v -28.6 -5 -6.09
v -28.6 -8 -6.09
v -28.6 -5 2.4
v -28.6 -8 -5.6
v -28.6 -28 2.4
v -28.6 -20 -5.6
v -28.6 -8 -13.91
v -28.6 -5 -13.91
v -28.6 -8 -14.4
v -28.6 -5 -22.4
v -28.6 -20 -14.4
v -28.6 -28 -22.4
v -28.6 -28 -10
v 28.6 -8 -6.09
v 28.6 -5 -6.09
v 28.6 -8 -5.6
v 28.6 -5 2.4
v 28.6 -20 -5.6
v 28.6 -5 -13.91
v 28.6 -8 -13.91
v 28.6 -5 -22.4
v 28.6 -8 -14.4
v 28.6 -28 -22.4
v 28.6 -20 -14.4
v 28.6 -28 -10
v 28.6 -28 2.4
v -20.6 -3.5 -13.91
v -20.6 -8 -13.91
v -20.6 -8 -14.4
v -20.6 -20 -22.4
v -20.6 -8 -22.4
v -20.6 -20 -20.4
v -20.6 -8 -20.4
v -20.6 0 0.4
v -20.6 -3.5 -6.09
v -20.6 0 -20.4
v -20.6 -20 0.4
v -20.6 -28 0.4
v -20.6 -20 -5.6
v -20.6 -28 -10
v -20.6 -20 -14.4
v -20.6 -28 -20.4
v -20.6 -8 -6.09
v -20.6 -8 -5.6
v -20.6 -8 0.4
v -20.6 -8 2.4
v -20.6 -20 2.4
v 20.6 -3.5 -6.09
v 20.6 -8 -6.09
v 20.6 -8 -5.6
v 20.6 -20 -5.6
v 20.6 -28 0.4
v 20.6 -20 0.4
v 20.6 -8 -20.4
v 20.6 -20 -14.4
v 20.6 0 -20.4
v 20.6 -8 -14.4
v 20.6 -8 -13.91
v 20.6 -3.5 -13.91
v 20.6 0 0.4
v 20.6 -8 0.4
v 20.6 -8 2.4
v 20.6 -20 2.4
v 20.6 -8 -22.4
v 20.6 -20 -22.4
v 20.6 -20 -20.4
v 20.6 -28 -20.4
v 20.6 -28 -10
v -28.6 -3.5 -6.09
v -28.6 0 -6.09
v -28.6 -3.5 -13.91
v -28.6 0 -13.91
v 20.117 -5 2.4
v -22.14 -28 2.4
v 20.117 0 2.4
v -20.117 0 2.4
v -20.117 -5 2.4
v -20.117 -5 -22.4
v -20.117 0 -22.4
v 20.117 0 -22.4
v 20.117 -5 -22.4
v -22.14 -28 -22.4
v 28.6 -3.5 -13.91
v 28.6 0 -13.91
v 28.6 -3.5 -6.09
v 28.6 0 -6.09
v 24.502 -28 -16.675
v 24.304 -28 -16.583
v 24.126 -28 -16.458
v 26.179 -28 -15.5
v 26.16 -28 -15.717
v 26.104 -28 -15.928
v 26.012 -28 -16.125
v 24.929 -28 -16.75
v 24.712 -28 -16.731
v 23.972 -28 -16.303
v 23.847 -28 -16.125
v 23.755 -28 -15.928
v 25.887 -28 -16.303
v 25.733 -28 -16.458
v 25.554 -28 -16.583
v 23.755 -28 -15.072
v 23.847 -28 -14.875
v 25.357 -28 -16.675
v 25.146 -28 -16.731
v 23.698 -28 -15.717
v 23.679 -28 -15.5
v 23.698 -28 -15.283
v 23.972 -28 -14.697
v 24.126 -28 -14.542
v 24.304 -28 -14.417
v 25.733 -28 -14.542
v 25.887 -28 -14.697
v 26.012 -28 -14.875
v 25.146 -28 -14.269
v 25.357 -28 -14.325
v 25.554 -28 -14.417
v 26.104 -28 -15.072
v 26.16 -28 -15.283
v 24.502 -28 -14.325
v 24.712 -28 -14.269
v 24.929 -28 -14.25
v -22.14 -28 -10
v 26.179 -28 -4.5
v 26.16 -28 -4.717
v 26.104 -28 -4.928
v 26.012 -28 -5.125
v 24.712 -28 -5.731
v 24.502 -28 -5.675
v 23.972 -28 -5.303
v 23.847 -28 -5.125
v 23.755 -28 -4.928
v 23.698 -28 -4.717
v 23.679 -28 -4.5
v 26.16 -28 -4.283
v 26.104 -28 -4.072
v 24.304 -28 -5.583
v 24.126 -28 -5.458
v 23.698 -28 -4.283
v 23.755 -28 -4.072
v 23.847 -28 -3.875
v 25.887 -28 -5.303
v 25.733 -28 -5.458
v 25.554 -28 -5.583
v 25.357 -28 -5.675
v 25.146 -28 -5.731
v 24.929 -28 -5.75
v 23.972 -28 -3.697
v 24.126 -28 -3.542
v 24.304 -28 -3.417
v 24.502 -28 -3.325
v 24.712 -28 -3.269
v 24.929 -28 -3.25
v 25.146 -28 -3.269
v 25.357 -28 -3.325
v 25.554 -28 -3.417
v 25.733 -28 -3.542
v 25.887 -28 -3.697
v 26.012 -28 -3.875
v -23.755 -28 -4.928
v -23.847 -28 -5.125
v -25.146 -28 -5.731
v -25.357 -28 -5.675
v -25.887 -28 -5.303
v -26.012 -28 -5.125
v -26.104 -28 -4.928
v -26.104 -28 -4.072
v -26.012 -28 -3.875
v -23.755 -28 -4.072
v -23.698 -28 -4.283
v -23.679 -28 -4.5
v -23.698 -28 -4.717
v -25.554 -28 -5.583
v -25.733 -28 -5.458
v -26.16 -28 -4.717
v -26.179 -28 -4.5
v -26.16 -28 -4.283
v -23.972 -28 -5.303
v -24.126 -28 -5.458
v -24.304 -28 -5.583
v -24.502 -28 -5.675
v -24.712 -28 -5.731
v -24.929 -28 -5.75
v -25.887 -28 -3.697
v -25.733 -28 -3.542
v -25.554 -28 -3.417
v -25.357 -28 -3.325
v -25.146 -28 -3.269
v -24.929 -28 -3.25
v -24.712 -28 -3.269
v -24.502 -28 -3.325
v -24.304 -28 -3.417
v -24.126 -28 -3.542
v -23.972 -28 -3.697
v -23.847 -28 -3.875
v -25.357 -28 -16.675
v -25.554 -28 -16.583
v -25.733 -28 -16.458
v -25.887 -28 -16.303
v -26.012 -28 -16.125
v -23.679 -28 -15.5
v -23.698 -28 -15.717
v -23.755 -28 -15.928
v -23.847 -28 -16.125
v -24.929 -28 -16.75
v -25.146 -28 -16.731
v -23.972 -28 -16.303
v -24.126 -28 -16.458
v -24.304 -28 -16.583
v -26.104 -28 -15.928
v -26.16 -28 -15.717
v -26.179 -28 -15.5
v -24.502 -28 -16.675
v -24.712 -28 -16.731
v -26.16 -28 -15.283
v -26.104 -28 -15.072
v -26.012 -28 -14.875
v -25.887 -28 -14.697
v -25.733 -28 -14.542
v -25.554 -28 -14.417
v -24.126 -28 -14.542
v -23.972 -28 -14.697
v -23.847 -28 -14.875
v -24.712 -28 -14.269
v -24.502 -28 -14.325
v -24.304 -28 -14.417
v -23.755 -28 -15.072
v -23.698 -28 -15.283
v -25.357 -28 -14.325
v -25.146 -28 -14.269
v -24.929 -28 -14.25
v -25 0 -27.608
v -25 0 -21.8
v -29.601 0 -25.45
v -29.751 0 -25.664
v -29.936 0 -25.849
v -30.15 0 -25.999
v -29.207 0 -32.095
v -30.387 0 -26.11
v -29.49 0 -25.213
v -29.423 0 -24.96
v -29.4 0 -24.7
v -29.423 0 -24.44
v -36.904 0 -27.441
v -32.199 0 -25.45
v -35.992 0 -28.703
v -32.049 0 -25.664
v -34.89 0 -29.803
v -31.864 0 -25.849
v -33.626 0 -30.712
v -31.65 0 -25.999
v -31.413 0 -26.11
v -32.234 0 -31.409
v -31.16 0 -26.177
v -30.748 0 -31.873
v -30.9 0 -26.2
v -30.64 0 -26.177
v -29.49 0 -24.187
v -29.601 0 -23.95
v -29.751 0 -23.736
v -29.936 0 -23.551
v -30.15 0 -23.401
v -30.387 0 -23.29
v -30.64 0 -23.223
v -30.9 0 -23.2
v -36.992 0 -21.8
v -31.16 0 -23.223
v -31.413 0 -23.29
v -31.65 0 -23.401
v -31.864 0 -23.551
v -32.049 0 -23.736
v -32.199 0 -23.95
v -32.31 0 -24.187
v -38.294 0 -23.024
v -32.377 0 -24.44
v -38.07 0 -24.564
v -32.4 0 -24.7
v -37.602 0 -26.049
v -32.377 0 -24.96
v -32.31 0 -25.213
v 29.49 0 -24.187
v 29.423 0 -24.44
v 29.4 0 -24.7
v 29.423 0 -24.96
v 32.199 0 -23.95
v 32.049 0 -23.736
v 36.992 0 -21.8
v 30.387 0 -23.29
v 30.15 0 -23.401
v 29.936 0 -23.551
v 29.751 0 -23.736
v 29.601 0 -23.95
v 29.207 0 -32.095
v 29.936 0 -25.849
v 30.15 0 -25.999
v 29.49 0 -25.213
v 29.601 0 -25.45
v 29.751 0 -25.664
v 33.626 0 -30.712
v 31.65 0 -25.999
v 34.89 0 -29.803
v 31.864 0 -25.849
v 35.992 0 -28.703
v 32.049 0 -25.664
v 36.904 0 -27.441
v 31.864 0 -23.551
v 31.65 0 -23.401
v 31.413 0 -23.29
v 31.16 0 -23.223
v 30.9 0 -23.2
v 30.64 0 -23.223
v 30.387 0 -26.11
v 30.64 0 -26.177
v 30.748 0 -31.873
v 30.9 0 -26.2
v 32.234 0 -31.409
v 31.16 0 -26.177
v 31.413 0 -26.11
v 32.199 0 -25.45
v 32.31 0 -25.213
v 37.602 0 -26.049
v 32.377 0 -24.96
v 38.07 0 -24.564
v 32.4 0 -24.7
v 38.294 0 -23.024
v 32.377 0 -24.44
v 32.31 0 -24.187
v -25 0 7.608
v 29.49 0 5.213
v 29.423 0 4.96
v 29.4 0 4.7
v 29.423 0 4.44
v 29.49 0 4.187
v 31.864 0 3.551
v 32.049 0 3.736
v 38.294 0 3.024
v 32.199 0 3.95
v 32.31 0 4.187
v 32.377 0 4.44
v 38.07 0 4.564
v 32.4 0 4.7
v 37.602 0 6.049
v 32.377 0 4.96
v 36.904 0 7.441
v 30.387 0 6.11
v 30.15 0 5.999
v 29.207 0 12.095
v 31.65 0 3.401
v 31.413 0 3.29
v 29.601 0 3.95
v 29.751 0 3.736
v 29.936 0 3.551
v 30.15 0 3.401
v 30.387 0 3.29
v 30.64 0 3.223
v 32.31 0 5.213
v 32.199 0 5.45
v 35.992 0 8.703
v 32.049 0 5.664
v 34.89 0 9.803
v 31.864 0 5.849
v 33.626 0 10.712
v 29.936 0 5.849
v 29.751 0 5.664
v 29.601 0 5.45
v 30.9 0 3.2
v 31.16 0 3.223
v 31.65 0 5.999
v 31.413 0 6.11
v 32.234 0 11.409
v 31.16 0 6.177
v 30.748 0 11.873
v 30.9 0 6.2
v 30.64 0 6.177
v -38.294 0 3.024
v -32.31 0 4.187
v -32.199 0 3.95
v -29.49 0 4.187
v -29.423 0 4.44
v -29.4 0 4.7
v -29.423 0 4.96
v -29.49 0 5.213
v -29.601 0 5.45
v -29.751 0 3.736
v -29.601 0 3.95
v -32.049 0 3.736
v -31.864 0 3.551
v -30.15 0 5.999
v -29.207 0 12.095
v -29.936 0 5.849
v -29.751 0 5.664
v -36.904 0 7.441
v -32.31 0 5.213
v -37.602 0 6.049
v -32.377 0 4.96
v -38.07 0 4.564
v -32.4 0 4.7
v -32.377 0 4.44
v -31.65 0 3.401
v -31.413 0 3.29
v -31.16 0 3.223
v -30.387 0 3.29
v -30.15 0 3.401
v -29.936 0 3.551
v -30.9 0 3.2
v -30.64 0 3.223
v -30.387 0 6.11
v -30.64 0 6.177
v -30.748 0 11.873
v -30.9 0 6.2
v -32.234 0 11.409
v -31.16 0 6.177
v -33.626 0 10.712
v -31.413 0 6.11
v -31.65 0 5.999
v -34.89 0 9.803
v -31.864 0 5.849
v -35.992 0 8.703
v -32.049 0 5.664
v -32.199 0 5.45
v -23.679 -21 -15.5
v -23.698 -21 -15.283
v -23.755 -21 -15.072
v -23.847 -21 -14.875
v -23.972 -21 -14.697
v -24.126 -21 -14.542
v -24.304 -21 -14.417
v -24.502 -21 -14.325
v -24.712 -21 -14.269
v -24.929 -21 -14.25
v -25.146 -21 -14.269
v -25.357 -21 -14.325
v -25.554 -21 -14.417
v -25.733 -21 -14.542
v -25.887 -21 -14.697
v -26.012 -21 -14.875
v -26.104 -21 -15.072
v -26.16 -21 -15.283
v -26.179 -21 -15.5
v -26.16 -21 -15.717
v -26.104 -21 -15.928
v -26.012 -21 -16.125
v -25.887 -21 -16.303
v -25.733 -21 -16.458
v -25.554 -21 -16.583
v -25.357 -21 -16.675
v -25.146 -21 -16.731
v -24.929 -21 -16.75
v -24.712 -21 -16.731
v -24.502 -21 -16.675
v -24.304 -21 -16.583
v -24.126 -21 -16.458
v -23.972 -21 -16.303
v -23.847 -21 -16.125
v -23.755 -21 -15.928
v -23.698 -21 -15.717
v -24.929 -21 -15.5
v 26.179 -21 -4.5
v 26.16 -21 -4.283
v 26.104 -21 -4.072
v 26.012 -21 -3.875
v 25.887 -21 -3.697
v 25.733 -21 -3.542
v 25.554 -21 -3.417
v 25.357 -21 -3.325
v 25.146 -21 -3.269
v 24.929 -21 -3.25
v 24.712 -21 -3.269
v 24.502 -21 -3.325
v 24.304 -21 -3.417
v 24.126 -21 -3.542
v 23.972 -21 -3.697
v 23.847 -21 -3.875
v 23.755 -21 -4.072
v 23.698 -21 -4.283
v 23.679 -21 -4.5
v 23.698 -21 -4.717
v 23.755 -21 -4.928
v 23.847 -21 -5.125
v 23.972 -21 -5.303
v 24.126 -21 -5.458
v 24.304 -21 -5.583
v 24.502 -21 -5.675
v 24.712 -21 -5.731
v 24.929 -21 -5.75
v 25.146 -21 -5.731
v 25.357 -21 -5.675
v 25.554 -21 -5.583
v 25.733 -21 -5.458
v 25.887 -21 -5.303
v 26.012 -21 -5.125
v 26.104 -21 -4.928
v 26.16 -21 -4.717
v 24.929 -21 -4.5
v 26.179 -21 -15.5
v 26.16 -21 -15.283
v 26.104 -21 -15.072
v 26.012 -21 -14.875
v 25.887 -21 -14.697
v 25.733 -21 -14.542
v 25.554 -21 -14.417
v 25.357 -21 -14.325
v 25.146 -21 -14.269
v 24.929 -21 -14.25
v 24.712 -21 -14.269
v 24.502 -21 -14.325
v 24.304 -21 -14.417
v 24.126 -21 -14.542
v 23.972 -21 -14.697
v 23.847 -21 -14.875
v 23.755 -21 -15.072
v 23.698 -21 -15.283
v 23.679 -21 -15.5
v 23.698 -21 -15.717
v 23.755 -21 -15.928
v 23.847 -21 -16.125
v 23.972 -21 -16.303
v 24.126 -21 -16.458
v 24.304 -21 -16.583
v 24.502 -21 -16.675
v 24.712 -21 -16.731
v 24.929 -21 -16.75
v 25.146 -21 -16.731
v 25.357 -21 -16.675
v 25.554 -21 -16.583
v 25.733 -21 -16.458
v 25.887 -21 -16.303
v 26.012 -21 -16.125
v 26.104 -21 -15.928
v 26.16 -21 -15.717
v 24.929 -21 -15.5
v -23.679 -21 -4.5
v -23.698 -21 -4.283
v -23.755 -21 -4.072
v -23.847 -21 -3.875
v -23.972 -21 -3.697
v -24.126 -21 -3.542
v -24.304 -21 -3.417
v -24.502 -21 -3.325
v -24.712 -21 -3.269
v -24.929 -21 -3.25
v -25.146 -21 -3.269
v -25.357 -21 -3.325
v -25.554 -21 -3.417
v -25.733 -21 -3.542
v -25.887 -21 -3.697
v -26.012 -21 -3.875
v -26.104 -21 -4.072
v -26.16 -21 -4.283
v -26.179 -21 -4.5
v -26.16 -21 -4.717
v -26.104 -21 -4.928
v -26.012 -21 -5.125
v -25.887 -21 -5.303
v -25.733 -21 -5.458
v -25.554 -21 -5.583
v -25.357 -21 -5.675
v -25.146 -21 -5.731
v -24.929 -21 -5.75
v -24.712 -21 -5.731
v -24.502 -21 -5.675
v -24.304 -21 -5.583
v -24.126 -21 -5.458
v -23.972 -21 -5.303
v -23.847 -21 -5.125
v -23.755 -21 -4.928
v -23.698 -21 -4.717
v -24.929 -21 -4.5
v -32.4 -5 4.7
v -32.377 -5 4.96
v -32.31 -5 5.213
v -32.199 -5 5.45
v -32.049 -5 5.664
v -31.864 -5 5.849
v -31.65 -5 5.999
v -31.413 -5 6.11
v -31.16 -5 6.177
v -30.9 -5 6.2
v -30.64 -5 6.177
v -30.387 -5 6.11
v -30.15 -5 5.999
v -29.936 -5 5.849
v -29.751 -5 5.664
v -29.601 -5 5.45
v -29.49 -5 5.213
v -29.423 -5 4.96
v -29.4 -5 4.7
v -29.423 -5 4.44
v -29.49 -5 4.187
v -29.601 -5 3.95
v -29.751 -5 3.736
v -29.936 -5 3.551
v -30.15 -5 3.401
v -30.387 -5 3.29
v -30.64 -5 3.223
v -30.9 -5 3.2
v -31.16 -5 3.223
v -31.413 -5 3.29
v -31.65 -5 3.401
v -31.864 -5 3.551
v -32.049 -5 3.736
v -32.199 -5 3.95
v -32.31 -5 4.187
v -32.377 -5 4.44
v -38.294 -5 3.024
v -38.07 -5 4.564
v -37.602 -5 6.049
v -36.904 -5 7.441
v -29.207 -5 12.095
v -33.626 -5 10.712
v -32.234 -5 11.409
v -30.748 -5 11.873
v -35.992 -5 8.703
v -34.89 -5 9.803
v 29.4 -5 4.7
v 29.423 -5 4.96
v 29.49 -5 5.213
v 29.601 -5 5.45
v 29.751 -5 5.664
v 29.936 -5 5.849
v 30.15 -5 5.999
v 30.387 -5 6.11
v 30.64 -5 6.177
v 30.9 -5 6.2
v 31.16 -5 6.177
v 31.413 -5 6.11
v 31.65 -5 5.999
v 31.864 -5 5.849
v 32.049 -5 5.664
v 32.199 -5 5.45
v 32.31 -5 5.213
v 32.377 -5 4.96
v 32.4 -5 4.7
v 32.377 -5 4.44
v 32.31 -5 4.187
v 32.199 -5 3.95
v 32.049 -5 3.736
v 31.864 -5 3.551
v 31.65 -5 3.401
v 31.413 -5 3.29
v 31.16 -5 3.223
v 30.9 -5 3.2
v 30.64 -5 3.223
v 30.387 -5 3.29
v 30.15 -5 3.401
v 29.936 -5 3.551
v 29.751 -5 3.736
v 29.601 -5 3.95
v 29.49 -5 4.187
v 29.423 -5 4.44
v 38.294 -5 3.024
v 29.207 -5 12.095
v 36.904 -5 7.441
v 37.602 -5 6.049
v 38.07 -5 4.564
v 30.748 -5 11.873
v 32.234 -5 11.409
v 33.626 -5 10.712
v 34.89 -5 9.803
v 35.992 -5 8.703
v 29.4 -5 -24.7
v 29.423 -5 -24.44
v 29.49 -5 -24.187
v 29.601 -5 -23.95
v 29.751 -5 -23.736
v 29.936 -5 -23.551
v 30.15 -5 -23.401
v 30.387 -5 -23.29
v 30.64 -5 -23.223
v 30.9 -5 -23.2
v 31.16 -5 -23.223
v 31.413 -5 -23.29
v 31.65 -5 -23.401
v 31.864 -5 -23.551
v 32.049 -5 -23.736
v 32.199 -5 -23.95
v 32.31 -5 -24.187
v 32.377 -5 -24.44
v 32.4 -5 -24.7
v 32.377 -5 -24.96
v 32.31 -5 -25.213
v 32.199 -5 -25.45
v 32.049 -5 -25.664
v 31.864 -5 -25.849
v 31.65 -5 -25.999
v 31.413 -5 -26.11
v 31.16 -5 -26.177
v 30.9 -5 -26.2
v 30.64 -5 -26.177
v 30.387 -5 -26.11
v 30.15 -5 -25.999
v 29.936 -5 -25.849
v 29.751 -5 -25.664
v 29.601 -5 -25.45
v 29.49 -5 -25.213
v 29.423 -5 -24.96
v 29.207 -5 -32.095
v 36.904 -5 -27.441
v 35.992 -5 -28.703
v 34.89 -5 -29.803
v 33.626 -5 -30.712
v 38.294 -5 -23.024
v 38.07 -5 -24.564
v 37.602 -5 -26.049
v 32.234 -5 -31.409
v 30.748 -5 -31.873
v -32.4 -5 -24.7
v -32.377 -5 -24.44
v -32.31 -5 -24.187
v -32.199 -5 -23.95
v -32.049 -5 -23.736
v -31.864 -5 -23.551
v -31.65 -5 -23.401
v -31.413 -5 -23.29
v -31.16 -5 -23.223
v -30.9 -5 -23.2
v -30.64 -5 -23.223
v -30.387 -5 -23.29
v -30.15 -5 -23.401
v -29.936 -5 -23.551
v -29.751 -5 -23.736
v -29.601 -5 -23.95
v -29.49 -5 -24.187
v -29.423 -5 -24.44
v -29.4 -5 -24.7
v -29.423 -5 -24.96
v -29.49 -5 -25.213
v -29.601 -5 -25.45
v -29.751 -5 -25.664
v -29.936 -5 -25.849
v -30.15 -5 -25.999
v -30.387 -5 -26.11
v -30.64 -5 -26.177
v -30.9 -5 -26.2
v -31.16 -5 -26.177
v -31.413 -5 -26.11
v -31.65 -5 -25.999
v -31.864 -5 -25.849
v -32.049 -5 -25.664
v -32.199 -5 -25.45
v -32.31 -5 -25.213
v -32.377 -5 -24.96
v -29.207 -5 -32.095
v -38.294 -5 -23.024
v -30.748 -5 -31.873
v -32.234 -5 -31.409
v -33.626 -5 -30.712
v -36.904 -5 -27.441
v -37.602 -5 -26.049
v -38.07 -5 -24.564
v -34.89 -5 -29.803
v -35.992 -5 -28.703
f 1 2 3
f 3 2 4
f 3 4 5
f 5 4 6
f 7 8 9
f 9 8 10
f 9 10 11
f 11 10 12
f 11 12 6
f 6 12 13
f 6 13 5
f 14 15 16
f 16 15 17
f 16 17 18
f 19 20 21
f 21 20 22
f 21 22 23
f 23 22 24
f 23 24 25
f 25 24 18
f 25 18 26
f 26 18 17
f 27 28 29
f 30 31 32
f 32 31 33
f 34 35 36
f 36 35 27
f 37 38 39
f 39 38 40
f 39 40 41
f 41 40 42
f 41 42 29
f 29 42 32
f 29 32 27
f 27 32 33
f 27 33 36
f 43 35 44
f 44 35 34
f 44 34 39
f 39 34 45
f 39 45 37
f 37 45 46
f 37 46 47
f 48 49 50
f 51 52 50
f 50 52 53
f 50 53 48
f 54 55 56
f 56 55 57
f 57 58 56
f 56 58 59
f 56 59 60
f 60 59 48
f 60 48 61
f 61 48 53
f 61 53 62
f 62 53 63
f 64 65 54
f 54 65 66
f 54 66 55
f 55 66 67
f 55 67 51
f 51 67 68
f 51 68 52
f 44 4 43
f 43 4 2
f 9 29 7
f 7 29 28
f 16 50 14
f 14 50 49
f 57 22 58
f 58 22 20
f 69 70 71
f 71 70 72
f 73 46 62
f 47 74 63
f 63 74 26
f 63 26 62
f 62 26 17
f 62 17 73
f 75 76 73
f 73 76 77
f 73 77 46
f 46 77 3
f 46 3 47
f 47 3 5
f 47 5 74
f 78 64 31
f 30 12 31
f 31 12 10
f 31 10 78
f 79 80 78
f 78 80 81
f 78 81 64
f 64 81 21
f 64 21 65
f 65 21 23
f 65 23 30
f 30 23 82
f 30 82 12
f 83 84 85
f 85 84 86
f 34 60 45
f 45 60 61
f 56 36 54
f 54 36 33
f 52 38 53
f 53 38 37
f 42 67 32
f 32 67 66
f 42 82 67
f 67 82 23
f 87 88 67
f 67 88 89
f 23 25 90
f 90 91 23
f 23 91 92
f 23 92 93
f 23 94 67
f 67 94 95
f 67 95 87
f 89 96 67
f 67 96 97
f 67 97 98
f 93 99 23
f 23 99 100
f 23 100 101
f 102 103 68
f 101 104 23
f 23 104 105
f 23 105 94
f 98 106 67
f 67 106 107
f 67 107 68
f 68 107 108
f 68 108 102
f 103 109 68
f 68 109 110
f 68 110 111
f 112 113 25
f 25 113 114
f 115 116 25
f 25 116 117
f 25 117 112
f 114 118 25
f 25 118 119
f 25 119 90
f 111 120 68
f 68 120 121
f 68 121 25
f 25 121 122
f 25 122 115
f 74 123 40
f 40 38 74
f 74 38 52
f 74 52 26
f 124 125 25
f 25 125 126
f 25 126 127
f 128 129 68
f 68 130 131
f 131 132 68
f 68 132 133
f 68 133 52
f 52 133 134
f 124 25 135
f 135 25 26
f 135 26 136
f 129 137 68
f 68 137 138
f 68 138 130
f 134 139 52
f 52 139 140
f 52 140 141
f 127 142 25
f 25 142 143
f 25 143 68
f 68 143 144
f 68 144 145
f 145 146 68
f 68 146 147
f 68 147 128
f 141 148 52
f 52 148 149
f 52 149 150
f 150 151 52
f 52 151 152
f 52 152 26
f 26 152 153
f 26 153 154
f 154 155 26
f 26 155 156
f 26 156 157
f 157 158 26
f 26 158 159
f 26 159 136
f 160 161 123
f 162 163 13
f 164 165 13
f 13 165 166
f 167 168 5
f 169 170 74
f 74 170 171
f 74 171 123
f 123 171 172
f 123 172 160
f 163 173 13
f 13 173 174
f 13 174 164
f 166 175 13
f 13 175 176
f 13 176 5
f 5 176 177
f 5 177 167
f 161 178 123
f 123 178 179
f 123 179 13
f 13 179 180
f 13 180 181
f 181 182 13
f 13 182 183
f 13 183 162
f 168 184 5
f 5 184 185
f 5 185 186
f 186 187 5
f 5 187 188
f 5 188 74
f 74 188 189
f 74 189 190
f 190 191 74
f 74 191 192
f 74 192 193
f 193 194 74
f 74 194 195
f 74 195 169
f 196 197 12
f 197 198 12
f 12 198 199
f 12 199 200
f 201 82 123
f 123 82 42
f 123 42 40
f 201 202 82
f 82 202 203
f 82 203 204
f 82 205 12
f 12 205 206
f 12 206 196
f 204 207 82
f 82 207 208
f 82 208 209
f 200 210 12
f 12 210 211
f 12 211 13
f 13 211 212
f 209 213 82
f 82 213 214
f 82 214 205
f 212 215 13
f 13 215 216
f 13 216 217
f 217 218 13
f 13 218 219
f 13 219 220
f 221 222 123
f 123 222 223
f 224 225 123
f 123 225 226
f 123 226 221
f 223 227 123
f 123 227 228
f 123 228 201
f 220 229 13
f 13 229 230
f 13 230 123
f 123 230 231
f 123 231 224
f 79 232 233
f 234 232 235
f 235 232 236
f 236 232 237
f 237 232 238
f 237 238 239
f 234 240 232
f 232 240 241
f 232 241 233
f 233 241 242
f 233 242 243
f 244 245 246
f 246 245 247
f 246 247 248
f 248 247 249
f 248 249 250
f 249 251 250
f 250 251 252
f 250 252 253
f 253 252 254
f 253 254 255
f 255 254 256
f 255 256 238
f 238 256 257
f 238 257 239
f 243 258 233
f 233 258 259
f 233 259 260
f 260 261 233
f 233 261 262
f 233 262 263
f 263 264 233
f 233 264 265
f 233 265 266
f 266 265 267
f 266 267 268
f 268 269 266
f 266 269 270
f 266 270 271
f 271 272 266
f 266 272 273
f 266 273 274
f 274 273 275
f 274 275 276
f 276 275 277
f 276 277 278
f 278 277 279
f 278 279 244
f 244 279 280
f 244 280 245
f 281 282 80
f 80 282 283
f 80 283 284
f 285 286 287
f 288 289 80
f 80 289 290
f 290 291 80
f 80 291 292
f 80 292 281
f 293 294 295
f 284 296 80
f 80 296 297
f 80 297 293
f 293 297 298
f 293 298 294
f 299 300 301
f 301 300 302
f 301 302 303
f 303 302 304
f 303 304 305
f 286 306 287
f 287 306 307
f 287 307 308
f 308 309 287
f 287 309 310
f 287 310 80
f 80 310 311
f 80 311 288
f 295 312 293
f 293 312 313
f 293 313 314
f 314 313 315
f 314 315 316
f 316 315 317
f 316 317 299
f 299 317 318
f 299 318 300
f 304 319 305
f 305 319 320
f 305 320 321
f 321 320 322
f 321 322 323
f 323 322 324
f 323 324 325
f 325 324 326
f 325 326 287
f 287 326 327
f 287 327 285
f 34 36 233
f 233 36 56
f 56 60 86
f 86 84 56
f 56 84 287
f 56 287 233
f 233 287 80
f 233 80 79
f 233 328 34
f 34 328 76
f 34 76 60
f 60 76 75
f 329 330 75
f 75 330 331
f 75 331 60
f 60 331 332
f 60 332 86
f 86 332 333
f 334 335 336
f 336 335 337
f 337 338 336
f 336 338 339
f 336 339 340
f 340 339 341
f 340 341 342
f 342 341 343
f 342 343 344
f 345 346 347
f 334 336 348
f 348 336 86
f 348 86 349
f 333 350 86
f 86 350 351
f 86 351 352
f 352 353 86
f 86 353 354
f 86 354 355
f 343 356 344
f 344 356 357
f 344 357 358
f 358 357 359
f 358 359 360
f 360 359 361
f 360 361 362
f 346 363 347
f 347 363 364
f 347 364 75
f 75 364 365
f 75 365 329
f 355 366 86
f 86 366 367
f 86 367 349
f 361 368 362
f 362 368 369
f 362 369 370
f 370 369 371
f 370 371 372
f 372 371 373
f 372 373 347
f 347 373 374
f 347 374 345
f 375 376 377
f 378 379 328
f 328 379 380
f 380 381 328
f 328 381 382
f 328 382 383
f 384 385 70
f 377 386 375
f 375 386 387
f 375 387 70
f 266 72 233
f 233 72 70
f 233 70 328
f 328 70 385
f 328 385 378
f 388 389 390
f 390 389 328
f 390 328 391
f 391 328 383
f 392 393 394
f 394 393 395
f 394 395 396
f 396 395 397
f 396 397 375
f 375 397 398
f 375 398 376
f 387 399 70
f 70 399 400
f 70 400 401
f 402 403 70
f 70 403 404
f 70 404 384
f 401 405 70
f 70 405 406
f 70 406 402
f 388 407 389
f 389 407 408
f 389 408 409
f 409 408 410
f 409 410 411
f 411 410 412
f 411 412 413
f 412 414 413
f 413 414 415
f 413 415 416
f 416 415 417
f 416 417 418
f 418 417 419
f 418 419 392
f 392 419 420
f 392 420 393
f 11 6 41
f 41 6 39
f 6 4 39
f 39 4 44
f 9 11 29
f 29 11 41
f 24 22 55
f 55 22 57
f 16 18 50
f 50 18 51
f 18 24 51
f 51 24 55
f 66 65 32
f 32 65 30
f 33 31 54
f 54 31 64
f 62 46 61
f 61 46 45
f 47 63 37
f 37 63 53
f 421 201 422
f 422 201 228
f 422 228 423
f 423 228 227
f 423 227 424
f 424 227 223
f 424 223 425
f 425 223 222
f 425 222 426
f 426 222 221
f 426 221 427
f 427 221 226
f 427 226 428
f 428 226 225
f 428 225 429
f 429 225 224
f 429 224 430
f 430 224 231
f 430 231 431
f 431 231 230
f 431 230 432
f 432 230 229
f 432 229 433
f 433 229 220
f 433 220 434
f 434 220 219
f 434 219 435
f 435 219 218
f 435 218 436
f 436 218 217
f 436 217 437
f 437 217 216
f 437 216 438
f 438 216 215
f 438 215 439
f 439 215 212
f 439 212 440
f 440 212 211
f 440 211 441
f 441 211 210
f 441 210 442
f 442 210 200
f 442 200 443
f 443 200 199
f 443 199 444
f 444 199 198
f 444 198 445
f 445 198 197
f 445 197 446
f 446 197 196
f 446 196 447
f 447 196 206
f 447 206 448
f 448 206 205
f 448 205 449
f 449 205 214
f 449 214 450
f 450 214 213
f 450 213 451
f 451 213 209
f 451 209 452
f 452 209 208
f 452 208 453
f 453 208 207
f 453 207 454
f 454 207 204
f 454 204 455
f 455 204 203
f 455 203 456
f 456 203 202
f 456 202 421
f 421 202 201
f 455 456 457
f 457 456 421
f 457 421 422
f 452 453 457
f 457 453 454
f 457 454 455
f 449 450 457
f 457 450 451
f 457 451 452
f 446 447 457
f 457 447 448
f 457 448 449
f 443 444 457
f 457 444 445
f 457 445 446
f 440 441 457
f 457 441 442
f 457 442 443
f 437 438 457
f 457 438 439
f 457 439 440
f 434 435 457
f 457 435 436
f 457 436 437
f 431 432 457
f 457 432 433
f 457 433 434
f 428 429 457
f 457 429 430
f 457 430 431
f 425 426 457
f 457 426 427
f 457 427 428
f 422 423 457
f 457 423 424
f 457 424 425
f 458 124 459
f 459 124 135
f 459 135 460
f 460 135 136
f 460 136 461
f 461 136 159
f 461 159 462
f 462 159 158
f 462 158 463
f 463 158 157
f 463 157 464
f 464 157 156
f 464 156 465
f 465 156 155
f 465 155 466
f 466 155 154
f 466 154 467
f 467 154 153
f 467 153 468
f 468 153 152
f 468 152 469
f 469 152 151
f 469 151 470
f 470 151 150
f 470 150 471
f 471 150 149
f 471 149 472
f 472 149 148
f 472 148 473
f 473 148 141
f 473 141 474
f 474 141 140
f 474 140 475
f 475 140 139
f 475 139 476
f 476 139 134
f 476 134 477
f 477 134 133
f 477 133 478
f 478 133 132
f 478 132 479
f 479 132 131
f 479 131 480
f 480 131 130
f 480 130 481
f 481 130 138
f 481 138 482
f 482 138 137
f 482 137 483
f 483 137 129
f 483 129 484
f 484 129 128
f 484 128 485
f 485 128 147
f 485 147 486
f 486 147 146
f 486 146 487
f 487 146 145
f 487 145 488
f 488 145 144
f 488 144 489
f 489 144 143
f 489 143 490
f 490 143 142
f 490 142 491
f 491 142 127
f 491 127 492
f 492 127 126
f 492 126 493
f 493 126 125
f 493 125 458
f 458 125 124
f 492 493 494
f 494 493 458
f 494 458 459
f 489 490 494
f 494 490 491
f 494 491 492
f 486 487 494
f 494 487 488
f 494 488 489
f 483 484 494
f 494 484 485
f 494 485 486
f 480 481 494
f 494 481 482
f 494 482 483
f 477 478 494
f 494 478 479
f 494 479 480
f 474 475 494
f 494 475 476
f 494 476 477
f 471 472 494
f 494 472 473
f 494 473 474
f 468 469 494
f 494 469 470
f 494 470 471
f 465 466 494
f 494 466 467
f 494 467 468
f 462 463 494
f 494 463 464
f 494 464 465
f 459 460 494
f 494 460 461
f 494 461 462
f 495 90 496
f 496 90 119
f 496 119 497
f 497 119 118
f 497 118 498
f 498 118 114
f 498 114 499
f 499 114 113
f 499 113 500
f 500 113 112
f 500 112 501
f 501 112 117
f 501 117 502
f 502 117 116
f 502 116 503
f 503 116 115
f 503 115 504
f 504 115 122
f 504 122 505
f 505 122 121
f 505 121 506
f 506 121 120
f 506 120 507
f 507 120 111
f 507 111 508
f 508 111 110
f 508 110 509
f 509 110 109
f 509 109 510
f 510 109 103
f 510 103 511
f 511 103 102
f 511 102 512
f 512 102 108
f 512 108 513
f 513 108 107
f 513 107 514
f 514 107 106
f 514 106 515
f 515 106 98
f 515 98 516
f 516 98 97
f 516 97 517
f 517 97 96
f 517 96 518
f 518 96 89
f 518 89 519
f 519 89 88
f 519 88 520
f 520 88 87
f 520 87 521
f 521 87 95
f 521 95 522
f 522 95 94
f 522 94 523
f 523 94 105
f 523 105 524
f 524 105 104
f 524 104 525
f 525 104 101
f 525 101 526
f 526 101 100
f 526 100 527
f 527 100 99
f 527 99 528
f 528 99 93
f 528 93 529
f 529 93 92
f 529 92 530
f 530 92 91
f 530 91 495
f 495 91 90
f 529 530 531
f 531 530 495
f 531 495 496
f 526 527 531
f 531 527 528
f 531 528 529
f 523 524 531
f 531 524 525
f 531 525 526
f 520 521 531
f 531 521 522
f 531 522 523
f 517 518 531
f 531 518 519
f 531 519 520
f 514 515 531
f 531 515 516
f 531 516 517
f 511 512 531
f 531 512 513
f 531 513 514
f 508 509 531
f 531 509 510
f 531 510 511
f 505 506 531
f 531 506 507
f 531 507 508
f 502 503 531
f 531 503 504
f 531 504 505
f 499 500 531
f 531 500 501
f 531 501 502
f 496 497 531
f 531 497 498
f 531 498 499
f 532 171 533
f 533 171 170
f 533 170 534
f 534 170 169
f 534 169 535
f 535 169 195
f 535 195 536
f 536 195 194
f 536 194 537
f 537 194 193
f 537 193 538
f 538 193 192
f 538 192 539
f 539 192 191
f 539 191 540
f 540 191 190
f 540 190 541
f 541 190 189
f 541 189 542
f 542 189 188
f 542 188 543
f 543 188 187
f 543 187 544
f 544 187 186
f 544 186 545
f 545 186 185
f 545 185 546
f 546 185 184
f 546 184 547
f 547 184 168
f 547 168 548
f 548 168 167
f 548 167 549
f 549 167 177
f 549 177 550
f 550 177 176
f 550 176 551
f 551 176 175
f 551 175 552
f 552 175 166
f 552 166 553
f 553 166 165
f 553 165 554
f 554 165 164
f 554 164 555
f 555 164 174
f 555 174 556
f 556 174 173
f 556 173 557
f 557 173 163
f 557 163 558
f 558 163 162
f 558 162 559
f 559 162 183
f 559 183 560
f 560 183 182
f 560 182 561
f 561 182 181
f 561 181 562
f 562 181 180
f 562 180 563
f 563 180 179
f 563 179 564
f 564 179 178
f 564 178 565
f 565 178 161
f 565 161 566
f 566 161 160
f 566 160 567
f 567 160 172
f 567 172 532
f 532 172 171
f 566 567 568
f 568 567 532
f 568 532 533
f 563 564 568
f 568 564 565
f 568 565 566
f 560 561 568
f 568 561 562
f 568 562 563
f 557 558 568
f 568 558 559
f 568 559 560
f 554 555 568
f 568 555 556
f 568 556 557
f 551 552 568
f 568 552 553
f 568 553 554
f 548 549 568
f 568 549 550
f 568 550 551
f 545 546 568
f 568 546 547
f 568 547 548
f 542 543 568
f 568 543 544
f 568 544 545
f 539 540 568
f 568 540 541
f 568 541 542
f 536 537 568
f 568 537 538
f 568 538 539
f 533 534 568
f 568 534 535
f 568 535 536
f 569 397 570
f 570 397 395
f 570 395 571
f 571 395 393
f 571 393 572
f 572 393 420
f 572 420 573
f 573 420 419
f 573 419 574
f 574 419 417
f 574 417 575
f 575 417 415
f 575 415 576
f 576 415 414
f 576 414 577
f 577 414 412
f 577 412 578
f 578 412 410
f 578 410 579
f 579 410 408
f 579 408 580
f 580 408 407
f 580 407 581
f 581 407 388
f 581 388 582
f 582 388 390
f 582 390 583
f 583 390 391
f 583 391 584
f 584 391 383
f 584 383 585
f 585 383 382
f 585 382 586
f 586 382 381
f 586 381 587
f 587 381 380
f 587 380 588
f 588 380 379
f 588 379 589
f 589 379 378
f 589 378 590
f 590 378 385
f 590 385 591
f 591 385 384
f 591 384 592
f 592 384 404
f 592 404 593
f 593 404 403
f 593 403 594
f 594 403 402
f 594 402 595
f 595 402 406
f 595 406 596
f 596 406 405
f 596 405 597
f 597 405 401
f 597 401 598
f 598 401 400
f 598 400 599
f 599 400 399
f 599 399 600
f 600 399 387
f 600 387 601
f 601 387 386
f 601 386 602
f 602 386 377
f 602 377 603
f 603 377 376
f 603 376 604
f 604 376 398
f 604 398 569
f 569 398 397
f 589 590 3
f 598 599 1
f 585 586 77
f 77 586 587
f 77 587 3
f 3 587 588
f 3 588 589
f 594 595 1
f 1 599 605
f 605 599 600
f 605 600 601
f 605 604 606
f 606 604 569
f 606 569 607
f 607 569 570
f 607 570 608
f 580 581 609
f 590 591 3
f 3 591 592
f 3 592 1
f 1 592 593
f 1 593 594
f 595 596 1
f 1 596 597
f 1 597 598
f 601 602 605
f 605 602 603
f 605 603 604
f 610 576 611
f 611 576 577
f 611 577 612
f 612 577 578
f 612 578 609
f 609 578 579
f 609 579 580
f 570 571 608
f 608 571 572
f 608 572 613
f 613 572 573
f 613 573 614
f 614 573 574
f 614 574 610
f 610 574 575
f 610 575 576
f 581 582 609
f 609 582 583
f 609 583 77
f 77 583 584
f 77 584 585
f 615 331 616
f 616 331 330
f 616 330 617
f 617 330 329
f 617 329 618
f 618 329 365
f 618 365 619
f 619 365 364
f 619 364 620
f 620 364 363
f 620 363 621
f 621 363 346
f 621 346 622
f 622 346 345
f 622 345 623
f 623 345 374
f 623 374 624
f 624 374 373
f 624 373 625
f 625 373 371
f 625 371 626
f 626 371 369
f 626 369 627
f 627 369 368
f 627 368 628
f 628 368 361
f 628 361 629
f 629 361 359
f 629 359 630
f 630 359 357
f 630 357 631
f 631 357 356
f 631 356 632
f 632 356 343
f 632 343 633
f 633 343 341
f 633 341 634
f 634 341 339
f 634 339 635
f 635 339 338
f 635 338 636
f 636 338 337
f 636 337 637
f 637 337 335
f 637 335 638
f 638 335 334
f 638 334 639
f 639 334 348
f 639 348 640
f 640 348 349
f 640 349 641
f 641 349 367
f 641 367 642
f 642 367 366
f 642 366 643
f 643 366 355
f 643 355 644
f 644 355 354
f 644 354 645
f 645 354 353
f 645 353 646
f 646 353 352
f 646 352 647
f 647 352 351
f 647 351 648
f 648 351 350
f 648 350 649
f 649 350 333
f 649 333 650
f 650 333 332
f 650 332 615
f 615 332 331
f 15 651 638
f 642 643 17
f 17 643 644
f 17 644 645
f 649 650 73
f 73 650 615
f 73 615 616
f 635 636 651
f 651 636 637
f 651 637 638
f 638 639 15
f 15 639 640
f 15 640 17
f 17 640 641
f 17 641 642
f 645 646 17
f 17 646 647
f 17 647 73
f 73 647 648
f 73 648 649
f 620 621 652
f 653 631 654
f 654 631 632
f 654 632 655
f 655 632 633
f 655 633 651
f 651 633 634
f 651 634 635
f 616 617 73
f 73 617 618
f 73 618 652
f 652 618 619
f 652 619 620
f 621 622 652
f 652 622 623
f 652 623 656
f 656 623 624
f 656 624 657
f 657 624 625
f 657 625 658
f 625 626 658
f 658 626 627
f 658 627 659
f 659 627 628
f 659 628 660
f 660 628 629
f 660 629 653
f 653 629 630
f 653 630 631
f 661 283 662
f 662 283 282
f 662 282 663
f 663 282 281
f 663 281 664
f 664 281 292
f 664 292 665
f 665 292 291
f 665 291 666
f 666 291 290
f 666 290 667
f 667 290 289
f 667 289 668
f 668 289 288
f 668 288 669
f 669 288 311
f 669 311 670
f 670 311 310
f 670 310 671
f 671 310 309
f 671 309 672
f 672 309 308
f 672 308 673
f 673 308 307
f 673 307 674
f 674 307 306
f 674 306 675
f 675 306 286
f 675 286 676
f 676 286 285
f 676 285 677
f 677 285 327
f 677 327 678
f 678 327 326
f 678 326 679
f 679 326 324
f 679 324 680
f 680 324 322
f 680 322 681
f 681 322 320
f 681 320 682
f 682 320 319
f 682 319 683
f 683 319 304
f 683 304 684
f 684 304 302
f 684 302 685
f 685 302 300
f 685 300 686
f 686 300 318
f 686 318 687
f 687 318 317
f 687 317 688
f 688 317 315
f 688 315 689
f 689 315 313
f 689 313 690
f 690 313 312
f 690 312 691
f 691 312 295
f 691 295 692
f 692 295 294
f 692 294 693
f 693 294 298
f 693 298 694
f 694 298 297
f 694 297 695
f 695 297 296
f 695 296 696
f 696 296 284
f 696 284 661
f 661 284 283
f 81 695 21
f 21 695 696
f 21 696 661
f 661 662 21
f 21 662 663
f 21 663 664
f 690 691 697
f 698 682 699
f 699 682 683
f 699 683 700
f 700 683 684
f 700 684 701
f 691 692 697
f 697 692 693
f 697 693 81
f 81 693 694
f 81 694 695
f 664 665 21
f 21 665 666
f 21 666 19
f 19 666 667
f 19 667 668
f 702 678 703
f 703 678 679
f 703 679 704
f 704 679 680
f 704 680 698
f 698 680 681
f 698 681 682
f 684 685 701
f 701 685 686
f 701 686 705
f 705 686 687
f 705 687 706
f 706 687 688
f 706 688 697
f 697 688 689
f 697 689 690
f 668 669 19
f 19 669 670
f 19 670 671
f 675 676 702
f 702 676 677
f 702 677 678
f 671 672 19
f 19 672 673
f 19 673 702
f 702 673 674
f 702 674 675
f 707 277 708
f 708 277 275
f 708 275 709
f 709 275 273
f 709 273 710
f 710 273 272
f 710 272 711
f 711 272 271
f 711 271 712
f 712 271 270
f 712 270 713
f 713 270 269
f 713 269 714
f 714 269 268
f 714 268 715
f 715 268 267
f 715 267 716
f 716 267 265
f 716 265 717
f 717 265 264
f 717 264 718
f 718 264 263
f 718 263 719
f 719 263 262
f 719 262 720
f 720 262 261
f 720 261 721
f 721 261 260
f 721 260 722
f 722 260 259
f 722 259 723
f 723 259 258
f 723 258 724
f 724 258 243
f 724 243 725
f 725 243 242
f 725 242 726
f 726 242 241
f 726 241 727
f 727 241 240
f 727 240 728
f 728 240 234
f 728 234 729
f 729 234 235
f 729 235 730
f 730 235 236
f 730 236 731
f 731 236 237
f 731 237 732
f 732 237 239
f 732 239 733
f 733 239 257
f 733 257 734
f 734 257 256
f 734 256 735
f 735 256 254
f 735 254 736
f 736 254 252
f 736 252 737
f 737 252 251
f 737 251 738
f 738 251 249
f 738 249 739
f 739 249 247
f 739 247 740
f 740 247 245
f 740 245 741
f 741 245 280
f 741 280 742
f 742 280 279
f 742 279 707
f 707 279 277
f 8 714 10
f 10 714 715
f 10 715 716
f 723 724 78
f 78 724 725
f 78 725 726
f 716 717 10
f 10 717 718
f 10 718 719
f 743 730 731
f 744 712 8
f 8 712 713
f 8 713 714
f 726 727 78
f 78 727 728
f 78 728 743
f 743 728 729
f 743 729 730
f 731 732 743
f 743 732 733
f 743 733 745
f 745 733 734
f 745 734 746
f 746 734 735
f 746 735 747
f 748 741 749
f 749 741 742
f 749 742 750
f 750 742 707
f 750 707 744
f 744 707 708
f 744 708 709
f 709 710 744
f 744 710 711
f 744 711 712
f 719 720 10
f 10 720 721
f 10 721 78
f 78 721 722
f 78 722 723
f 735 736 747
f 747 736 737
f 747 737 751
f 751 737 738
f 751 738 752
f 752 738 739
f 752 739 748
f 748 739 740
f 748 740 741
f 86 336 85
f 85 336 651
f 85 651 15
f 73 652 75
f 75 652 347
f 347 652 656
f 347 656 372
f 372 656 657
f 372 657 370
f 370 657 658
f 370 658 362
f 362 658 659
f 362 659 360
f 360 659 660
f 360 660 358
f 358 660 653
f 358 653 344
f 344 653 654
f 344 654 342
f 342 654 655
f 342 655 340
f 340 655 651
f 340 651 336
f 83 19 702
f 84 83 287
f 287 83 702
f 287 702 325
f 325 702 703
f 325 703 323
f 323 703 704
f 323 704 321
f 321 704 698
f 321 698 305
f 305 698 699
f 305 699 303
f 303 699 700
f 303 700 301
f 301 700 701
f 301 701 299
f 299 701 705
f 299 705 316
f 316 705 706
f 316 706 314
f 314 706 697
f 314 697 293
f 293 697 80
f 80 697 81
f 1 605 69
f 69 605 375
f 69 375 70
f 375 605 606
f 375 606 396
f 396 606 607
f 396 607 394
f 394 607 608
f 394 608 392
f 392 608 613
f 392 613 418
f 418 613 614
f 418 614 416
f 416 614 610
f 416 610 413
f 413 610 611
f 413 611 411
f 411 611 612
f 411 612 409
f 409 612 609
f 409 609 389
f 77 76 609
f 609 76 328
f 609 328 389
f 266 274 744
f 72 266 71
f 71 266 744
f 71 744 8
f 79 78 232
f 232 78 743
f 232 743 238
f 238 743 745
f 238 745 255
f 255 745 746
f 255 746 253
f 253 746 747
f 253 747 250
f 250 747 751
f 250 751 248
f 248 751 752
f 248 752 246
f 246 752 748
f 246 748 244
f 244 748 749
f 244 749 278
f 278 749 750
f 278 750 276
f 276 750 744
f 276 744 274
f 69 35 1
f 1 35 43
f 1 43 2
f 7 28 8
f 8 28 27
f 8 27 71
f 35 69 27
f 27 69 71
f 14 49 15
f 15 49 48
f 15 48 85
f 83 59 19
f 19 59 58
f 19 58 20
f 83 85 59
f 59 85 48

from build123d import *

# Parameters (mm, degrees)
SKETCH2_W               = 57.2
SKETCH2_H               = 24.8
SKETCH2_W_2             = 41.2
SKETCH2_H_2             = 20.8
BOSS_EXTRUDE2_DEPTH     = 28
SKETCH4_W               = 8.8
SKETCH4_H               = 12
CUT_EXTRUDE1_DEPTH      = 73
SKETCH5_W               = 41.2
SKETCH5_H               = 12
CUT_EXTRUDE2_DEPTH      = 28
SKETCH6_R               = 1.25
CUT_EXTRUDE3_DEPTH      = 7
SKETCH7_R               = 1.5
BOSS_EXTRUDE3_DEPTH     = 5
MIRROR2_COPY_1_SKETCH_R = 1.5
MIRROR2_COPY_1_DEPTH    = 5
BOSS_EXTRUDE4_START     = -5
BOSS_EXTRUDE4_DEPTH     = 5
MIRROR4_START           = -5
MIRROR4_COPY_1_DEPTH    = 5
CUT_EXTRUDE4_DEPTH      = 80.302431776


with BuildPart() as part:
    # Sketch2 → Boss-Extrude2 (new body)
    with BuildSketch(Plane.XZ):
        with Locations((0, -10)):
            Rectangle(SKETCH2_W, SKETCH2_H)
        with Locations((0, -10)):
            Rectangle(SKETCH2_W_2, SKETCH2_H_2, mode=Mode.SUBTRACT)
    extrude(amount=BOSS_EXTRUDE2_DEPTH)

    # Sketch4 → Cut-Extrude1 (cut)
    with BuildSketch(Plane.ZY.offset(28.6)):
        with Locations((-10, -14)):
            Rectangle(SKETCH4_W, SKETCH4_H)
    extrude(amount=-CUT_EXTRUDE1_DEPTH, mode=Mode.SUBTRACT)

    # Sketch5 → Cut-Extrude2 (cut)
    with BuildSketch(Plane.XY.offset(2.4)):
        with Locations((0, -14)):
            Rectangle(SKETCH5_W, SKETCH5_H)
    extrude(amount=-CUT_EXTRUDE2_DEPTH, mode=Mode.SUBTRACT)

    # Sketch6 → Cut-Extrude3 (cut)
    with BuildSketch(Plane.XZ.offset(28)):
        with Locations((-24.929249083, -15.5)):
            Circle(SKETCH6_R)
        with Locations((-24.929249083, -4.5)):
            Circle(SKETCH6_R)
        with Locations((24.929249083, -15.5)):
            Circle(SKETCH6_R)
        with Locations((24.929249083, -4.5)):
            Circle(SKETCH6_R)
    extrude(amount=-CUT_EXTRUDE3_DEPTH, mode=Mode.SUBTRACT)

    # Sketch7 → Boss-Extrude3 (add)
    with BuildSketch(Plane(origin=(0, 0, 0), x_dir=(1, 0, 0), z_dir=(0, 1, 0))):
        with BuildLine():
            Line((-28.6, -2.4), (-28.6, 0.6))
            Line((-28.6, 0.6), (-33.943490451, -4.423862881))
            ThreePointArc((-33.943490451, -4.423862881), (-32.636549964, -6.444153255), (-30.613803719, -7.74728957))
            Line((-30.613803719, -7.74728957), (-25.6, -2.4))
            Line((-25.6, -2.4), (-28.6, -2.4))
        make_face()
        with Locations(Location((-30.9, -4.7, 0), (0, 0, 180))):
            Circle(SKETCH7_R, mode=Mode.SUBTRACT)
    boss_extrude3 = extrude(amount=-BOSS_EXTRUDE3_DEPTH)

    # Mirror1: Boss-Extrude3 across plane
    add(boss_extrude3.mirror(Plane.ZY))

    # Mirror2: Boss-Extrude3 across plane
    add(boss_extrude3.mirror(Plane.XY.offset(-10)))

    # Mirror2 copy 1 sketch → Mirror2 copy 1 (add)
    with BuildSketch(Plane(origin=(0, 0, -20), x_dir=(-1, 0, 0), z_dir=(0, 1, 0))):
        with BuildLine():
            Line((-28.6, -2.4), (-28.6, 0.6))
            Line((-28.6, 0.6), (-33.943490451, -4.423862881))
            ThreePointArc((-33.943490451, -4.423862881), (-32.636549964, -6.444153255), (-30.613803719, -7.74728957))
            Line((-30.613803719, -7.74728957), (-25.6, -2.4))
            Line((-25.6, -2.4), (-28.6, -2.4))
        make_face()
        with Locations(Location((-30.9, -4.7, 0), (0, 0, 180))):
            Circle(MIRROR2_COPY_1_SKETCH_R, mode=Mode.SUBTRACT)
    extrude(amount=-MIRROR2_COPY_1_DEPTH)

    # Sketch8 → Boss-Extrude4 (add)
    with BuildSketch(Plane.XZ.offset(5).offset(BOSS_EXTRUDE4_START)):
        with BuildLine():
            Line((28.6, -0.6), (28.6, -6.090275739))
            Line((28.6, -6.090275739), (38.293875859, 3.023748801))
            ThreePointArc((38.293875859, 3.023748801), (35.462849129, 9.2747068), (29.207013206, 12.0949382))
            Line((29.207013206, 12.0949382), (20.116703701, 2.4))
            Line((20.116703701, 2.4), (25.6, 2.4))
            Line((25.6, 2.4), (30.613803719, 7.74728957))
            ThreePointArc((30.613803719, 7.74728957), (32.636549964, 6.444153255), (33.943490451, 4.423862881))
            Line((33.943490451, 4.423862881), (28.6, -0.6))
        make_face()
    boss_extrude4 = extrude(amount=BOSS_EXTRUDE4_DEPTH)

    # Mirror3: Boss-Extrude4 across plane
    add(boss_extrude4.mirror(Plane(origin=(0, 0, -10), x_dir=(1, 0, 0), z_dir=(0, 0, -1))))

    # Mirror4: Boss-Extrude4 across plane
    add(boss_extrude4.mirror(Plane.ZY))

    # Mirror4 copy 1 sketch → Mirror4 copy 1 (add)
    with BuildSketch(Plane(origin=(0, -5, -20), x_dir=(-1, 0, 0), z_dir=(0, -1, 0)).offset(MIRROR4_START)):
        with BuildLine():
            Line((28.6, -0.6), (28.6, -6.090275739))
            Line((28.6, -6.090275739), (38.293875859, 3.023748801))
            ThreePointArc((38.293875859, 3.023748801), (35.462849129, 9.2747068), (29.207013206, 12.0949382))
            Line((29.207013206, 12.0949382), (20.116703701, 2.4))
            Line((20.116703701, 2.4), (25.6, 2.4))
            Line((25.6, 2.4), (30.613803719, 7.74728957))
            ThreePointArc((30.613803719, 7.74728957), (32.636549964, 6.444153255), (33.943490451, 4.423862881))
            Line((33.943490451, 4.423862881), (28.6, -0.6))
        make_face()
    extrude(amount=MIRROR4_COPY_1_DEPTH)

    # Sketch10 → Cut-Extrude4 (cut, through all)
    with BuildSketch(Plane(origin=(28.6, 0, 0), x_dir=(0, 0, -1), z_dir=(1, 0, 0))):
        Polygon((13.909724261, -5), (13.909724261, -3.5), (10, -3.5), (6.090275739, -3.5), (6.090275739, -5), (6.090275739, -8), (13.909724261, -8), align=None)
    extrude(amount=-CUT_EXTRUDE4_DEPTH, mode=Mode.SUBTRACT)


solid = part.part
